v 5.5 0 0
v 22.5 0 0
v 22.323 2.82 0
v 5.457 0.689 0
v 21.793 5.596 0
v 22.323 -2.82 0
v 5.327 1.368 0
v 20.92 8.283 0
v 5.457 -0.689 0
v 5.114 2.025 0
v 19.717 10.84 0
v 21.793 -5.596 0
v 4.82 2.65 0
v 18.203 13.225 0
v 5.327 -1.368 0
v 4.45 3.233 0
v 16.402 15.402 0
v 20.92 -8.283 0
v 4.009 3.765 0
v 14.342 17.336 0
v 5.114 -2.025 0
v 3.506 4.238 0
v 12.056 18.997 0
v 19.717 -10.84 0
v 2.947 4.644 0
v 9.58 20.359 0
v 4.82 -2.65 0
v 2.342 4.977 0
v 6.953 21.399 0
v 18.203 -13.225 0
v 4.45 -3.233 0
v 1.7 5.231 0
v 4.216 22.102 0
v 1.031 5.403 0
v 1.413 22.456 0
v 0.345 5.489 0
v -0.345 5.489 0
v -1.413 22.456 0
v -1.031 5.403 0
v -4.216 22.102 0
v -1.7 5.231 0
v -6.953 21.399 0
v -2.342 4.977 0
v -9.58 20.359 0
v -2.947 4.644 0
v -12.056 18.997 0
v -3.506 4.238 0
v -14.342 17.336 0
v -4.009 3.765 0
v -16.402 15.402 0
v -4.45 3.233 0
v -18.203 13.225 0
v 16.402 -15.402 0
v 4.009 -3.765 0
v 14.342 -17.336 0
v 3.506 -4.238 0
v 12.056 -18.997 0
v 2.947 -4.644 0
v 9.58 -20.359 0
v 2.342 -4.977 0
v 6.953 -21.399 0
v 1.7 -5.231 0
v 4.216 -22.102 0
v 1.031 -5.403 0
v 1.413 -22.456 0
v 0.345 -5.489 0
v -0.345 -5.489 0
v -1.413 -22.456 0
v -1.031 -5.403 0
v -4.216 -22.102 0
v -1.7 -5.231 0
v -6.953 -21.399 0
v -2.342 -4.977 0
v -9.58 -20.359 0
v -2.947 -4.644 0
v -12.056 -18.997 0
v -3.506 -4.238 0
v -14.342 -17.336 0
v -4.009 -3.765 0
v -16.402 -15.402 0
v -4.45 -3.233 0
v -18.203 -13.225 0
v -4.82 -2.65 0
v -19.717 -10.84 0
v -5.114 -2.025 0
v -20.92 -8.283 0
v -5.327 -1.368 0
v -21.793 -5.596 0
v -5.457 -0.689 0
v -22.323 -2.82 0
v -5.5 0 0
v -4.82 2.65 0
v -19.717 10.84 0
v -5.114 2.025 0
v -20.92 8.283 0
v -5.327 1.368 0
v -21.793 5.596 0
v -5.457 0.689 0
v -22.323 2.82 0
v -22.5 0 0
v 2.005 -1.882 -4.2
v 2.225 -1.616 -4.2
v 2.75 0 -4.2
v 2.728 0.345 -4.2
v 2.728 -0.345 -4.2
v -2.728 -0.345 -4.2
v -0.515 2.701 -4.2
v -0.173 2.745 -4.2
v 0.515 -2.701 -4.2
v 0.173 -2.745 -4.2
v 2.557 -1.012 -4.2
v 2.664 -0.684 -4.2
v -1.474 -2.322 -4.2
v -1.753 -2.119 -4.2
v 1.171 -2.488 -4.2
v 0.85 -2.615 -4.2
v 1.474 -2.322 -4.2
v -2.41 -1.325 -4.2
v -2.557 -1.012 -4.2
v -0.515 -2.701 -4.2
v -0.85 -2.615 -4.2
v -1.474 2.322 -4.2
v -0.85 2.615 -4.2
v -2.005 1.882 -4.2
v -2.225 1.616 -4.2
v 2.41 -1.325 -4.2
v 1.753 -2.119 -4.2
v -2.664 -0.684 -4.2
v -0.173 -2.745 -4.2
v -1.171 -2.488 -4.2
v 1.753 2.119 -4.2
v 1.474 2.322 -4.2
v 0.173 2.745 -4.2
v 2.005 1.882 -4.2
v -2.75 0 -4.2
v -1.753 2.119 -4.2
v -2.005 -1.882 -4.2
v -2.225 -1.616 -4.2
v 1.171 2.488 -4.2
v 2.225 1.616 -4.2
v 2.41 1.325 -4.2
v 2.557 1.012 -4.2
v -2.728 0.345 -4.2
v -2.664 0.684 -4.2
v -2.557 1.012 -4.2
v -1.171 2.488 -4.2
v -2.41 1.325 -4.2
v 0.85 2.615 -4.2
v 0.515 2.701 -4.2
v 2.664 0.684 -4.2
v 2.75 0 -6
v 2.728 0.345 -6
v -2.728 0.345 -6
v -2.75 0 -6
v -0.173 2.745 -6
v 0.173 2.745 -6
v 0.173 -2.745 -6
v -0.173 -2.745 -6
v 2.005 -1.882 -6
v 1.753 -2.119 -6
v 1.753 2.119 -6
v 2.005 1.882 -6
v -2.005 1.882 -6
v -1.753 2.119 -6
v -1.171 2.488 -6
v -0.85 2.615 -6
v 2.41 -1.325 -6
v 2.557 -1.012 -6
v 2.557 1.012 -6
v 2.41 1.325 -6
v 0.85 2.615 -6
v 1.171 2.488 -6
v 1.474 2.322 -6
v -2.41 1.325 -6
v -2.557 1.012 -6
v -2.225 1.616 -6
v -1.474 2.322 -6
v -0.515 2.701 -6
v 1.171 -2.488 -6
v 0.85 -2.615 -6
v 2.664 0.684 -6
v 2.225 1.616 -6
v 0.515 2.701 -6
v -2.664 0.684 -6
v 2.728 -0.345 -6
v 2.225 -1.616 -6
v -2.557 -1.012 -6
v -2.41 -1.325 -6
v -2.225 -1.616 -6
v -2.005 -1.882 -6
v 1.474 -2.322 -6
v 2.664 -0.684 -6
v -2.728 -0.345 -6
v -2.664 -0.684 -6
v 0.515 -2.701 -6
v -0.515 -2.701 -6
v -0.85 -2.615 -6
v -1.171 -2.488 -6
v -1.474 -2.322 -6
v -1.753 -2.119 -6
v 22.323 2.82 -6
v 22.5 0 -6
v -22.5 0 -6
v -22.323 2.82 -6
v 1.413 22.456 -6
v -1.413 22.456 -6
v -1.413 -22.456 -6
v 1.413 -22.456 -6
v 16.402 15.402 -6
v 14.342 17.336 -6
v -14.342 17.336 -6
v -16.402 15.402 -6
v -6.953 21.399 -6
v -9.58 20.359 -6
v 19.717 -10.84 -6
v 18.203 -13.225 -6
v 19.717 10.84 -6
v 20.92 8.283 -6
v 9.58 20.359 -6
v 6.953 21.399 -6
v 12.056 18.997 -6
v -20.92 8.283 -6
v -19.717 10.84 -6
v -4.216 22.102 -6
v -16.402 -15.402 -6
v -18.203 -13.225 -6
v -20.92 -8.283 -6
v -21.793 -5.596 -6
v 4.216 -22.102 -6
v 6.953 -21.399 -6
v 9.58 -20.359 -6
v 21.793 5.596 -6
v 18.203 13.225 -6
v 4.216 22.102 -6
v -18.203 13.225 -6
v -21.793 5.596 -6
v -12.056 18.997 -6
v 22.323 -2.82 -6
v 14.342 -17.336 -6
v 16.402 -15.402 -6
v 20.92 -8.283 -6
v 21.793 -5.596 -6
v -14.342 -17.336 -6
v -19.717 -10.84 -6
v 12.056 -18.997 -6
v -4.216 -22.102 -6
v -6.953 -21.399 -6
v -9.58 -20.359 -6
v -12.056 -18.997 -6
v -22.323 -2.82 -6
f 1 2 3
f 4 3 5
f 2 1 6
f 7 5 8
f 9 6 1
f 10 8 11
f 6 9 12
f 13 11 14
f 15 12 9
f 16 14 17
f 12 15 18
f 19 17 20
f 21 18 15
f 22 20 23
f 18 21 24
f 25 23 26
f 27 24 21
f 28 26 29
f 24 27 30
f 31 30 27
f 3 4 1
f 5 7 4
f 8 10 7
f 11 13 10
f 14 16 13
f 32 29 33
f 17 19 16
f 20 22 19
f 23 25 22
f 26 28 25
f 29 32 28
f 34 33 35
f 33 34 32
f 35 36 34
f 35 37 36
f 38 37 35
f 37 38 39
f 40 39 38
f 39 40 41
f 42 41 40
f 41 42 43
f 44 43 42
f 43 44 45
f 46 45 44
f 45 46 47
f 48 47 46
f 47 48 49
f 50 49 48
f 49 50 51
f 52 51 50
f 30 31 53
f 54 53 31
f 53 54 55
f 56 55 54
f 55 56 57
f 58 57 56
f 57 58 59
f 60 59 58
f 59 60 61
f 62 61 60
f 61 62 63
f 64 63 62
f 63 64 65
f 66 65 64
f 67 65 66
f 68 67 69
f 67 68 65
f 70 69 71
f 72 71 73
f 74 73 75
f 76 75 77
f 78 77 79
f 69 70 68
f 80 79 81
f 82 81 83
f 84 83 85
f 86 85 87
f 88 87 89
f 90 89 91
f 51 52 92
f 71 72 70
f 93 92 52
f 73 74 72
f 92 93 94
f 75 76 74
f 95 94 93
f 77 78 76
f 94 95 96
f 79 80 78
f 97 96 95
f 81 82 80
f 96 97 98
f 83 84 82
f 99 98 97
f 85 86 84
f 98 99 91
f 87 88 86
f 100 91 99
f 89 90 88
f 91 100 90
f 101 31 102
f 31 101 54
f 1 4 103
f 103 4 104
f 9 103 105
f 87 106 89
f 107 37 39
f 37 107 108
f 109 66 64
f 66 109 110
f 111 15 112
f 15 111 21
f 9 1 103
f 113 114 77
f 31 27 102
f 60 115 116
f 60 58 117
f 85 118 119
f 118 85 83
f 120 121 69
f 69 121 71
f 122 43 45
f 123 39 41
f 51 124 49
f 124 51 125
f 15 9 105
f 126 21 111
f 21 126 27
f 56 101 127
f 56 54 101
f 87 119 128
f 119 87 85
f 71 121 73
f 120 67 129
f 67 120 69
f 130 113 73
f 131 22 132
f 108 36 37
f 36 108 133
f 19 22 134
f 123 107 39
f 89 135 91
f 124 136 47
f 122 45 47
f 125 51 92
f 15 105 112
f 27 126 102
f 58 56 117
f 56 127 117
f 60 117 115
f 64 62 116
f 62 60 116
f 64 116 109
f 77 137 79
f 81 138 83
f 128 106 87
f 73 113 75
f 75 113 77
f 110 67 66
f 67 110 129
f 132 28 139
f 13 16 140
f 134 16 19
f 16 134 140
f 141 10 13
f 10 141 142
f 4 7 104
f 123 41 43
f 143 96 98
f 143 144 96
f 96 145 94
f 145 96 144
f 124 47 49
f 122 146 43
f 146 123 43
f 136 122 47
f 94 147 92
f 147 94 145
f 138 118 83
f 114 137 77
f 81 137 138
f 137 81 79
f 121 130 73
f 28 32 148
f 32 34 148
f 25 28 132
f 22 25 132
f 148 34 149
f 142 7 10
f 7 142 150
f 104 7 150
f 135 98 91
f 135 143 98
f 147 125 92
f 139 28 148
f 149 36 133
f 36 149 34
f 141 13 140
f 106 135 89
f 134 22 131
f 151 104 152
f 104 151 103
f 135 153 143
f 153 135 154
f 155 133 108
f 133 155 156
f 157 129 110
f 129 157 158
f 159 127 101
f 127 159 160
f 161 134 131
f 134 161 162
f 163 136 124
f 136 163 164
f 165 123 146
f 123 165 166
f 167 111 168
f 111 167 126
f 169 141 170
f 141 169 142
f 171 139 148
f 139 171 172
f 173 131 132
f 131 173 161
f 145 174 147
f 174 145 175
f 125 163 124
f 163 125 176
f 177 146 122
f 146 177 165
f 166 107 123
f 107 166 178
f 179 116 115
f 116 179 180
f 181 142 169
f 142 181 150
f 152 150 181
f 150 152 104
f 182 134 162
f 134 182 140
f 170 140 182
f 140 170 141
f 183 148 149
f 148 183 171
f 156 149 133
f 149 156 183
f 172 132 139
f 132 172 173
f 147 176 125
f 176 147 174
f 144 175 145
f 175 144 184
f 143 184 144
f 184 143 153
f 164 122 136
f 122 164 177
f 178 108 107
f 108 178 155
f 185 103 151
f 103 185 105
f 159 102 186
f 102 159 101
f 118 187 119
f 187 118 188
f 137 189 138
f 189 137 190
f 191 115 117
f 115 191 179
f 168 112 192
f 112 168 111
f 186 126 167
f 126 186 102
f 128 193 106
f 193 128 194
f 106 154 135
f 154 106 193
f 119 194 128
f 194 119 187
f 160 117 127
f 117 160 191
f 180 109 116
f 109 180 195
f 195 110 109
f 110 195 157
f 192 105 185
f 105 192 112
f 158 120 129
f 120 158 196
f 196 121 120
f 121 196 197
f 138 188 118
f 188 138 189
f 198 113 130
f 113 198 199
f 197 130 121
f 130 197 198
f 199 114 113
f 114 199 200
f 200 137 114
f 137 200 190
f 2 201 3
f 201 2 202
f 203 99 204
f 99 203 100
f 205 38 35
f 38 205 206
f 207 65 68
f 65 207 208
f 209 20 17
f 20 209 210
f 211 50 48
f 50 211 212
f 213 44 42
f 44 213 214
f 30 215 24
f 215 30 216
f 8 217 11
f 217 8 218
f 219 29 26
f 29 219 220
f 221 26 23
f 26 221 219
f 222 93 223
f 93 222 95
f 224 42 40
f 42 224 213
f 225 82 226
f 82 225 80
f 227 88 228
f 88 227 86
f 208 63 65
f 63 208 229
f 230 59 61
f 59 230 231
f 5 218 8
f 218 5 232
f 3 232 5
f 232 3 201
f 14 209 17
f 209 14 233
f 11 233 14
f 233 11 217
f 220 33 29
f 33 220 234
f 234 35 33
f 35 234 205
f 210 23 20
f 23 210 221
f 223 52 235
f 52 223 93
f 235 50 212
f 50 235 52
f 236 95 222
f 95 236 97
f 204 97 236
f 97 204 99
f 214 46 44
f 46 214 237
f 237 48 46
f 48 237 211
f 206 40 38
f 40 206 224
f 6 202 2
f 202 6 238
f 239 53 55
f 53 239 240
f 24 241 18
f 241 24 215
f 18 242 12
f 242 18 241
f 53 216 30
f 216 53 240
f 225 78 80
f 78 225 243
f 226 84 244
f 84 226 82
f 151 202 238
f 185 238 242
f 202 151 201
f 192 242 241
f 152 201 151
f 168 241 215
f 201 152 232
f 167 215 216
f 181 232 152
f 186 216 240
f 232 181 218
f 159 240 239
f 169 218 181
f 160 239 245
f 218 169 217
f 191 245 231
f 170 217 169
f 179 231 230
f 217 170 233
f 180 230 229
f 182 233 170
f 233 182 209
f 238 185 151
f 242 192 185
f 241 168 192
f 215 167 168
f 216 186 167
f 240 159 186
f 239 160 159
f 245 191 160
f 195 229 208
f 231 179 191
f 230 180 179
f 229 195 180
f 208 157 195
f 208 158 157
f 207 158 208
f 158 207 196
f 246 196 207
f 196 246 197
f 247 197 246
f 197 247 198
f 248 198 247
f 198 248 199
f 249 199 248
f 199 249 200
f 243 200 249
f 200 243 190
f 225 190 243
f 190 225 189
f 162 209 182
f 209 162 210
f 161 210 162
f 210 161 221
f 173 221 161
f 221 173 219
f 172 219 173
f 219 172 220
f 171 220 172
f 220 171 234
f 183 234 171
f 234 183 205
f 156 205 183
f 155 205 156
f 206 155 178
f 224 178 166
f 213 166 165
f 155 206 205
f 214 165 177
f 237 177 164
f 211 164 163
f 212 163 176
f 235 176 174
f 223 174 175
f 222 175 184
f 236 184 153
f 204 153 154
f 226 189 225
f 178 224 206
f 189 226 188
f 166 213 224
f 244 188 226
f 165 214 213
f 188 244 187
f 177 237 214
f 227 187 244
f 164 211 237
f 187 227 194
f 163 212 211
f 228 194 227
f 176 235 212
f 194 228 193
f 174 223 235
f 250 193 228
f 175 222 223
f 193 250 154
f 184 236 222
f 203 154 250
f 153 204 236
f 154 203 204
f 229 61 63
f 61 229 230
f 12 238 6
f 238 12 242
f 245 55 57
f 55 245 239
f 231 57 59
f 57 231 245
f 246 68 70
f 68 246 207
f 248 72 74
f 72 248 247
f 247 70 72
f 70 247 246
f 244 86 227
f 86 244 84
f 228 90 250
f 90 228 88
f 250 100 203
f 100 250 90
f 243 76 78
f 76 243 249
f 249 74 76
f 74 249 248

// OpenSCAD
$fn = 50;


difference() {
	union() {
		translate(v = [0, 0, -6.0000000000]) {
			cylinder(h = 6, r = 22.5000000000);
		}
	}
	union() {
		translate(v = [0, 0, 0]) {
			rotate(a = [0, 0, 0]) {
				difference() {
					union() {
						translate(v = [0, 0, -9.0000000000]) {
							cylinder(h = 9, r = 2.2500000000);
						}
						translate(v = [0, 0, -4.2000000000]) {
							cylinder(h = 4.2000000000, r1 = 2.7500000000, r2 = 5.5000000000);
						}
						translate(v = [0, 0, -9.0000000000]) {
							cylinder(h = 9, r = 2.7500000000);
						}
						translate(v = [0, 0, -9.0000000000]) {
							cylinder(h = 9, r = 2.2500000000);
						}
					}
					union();
				}
			}
		}
	}
}
